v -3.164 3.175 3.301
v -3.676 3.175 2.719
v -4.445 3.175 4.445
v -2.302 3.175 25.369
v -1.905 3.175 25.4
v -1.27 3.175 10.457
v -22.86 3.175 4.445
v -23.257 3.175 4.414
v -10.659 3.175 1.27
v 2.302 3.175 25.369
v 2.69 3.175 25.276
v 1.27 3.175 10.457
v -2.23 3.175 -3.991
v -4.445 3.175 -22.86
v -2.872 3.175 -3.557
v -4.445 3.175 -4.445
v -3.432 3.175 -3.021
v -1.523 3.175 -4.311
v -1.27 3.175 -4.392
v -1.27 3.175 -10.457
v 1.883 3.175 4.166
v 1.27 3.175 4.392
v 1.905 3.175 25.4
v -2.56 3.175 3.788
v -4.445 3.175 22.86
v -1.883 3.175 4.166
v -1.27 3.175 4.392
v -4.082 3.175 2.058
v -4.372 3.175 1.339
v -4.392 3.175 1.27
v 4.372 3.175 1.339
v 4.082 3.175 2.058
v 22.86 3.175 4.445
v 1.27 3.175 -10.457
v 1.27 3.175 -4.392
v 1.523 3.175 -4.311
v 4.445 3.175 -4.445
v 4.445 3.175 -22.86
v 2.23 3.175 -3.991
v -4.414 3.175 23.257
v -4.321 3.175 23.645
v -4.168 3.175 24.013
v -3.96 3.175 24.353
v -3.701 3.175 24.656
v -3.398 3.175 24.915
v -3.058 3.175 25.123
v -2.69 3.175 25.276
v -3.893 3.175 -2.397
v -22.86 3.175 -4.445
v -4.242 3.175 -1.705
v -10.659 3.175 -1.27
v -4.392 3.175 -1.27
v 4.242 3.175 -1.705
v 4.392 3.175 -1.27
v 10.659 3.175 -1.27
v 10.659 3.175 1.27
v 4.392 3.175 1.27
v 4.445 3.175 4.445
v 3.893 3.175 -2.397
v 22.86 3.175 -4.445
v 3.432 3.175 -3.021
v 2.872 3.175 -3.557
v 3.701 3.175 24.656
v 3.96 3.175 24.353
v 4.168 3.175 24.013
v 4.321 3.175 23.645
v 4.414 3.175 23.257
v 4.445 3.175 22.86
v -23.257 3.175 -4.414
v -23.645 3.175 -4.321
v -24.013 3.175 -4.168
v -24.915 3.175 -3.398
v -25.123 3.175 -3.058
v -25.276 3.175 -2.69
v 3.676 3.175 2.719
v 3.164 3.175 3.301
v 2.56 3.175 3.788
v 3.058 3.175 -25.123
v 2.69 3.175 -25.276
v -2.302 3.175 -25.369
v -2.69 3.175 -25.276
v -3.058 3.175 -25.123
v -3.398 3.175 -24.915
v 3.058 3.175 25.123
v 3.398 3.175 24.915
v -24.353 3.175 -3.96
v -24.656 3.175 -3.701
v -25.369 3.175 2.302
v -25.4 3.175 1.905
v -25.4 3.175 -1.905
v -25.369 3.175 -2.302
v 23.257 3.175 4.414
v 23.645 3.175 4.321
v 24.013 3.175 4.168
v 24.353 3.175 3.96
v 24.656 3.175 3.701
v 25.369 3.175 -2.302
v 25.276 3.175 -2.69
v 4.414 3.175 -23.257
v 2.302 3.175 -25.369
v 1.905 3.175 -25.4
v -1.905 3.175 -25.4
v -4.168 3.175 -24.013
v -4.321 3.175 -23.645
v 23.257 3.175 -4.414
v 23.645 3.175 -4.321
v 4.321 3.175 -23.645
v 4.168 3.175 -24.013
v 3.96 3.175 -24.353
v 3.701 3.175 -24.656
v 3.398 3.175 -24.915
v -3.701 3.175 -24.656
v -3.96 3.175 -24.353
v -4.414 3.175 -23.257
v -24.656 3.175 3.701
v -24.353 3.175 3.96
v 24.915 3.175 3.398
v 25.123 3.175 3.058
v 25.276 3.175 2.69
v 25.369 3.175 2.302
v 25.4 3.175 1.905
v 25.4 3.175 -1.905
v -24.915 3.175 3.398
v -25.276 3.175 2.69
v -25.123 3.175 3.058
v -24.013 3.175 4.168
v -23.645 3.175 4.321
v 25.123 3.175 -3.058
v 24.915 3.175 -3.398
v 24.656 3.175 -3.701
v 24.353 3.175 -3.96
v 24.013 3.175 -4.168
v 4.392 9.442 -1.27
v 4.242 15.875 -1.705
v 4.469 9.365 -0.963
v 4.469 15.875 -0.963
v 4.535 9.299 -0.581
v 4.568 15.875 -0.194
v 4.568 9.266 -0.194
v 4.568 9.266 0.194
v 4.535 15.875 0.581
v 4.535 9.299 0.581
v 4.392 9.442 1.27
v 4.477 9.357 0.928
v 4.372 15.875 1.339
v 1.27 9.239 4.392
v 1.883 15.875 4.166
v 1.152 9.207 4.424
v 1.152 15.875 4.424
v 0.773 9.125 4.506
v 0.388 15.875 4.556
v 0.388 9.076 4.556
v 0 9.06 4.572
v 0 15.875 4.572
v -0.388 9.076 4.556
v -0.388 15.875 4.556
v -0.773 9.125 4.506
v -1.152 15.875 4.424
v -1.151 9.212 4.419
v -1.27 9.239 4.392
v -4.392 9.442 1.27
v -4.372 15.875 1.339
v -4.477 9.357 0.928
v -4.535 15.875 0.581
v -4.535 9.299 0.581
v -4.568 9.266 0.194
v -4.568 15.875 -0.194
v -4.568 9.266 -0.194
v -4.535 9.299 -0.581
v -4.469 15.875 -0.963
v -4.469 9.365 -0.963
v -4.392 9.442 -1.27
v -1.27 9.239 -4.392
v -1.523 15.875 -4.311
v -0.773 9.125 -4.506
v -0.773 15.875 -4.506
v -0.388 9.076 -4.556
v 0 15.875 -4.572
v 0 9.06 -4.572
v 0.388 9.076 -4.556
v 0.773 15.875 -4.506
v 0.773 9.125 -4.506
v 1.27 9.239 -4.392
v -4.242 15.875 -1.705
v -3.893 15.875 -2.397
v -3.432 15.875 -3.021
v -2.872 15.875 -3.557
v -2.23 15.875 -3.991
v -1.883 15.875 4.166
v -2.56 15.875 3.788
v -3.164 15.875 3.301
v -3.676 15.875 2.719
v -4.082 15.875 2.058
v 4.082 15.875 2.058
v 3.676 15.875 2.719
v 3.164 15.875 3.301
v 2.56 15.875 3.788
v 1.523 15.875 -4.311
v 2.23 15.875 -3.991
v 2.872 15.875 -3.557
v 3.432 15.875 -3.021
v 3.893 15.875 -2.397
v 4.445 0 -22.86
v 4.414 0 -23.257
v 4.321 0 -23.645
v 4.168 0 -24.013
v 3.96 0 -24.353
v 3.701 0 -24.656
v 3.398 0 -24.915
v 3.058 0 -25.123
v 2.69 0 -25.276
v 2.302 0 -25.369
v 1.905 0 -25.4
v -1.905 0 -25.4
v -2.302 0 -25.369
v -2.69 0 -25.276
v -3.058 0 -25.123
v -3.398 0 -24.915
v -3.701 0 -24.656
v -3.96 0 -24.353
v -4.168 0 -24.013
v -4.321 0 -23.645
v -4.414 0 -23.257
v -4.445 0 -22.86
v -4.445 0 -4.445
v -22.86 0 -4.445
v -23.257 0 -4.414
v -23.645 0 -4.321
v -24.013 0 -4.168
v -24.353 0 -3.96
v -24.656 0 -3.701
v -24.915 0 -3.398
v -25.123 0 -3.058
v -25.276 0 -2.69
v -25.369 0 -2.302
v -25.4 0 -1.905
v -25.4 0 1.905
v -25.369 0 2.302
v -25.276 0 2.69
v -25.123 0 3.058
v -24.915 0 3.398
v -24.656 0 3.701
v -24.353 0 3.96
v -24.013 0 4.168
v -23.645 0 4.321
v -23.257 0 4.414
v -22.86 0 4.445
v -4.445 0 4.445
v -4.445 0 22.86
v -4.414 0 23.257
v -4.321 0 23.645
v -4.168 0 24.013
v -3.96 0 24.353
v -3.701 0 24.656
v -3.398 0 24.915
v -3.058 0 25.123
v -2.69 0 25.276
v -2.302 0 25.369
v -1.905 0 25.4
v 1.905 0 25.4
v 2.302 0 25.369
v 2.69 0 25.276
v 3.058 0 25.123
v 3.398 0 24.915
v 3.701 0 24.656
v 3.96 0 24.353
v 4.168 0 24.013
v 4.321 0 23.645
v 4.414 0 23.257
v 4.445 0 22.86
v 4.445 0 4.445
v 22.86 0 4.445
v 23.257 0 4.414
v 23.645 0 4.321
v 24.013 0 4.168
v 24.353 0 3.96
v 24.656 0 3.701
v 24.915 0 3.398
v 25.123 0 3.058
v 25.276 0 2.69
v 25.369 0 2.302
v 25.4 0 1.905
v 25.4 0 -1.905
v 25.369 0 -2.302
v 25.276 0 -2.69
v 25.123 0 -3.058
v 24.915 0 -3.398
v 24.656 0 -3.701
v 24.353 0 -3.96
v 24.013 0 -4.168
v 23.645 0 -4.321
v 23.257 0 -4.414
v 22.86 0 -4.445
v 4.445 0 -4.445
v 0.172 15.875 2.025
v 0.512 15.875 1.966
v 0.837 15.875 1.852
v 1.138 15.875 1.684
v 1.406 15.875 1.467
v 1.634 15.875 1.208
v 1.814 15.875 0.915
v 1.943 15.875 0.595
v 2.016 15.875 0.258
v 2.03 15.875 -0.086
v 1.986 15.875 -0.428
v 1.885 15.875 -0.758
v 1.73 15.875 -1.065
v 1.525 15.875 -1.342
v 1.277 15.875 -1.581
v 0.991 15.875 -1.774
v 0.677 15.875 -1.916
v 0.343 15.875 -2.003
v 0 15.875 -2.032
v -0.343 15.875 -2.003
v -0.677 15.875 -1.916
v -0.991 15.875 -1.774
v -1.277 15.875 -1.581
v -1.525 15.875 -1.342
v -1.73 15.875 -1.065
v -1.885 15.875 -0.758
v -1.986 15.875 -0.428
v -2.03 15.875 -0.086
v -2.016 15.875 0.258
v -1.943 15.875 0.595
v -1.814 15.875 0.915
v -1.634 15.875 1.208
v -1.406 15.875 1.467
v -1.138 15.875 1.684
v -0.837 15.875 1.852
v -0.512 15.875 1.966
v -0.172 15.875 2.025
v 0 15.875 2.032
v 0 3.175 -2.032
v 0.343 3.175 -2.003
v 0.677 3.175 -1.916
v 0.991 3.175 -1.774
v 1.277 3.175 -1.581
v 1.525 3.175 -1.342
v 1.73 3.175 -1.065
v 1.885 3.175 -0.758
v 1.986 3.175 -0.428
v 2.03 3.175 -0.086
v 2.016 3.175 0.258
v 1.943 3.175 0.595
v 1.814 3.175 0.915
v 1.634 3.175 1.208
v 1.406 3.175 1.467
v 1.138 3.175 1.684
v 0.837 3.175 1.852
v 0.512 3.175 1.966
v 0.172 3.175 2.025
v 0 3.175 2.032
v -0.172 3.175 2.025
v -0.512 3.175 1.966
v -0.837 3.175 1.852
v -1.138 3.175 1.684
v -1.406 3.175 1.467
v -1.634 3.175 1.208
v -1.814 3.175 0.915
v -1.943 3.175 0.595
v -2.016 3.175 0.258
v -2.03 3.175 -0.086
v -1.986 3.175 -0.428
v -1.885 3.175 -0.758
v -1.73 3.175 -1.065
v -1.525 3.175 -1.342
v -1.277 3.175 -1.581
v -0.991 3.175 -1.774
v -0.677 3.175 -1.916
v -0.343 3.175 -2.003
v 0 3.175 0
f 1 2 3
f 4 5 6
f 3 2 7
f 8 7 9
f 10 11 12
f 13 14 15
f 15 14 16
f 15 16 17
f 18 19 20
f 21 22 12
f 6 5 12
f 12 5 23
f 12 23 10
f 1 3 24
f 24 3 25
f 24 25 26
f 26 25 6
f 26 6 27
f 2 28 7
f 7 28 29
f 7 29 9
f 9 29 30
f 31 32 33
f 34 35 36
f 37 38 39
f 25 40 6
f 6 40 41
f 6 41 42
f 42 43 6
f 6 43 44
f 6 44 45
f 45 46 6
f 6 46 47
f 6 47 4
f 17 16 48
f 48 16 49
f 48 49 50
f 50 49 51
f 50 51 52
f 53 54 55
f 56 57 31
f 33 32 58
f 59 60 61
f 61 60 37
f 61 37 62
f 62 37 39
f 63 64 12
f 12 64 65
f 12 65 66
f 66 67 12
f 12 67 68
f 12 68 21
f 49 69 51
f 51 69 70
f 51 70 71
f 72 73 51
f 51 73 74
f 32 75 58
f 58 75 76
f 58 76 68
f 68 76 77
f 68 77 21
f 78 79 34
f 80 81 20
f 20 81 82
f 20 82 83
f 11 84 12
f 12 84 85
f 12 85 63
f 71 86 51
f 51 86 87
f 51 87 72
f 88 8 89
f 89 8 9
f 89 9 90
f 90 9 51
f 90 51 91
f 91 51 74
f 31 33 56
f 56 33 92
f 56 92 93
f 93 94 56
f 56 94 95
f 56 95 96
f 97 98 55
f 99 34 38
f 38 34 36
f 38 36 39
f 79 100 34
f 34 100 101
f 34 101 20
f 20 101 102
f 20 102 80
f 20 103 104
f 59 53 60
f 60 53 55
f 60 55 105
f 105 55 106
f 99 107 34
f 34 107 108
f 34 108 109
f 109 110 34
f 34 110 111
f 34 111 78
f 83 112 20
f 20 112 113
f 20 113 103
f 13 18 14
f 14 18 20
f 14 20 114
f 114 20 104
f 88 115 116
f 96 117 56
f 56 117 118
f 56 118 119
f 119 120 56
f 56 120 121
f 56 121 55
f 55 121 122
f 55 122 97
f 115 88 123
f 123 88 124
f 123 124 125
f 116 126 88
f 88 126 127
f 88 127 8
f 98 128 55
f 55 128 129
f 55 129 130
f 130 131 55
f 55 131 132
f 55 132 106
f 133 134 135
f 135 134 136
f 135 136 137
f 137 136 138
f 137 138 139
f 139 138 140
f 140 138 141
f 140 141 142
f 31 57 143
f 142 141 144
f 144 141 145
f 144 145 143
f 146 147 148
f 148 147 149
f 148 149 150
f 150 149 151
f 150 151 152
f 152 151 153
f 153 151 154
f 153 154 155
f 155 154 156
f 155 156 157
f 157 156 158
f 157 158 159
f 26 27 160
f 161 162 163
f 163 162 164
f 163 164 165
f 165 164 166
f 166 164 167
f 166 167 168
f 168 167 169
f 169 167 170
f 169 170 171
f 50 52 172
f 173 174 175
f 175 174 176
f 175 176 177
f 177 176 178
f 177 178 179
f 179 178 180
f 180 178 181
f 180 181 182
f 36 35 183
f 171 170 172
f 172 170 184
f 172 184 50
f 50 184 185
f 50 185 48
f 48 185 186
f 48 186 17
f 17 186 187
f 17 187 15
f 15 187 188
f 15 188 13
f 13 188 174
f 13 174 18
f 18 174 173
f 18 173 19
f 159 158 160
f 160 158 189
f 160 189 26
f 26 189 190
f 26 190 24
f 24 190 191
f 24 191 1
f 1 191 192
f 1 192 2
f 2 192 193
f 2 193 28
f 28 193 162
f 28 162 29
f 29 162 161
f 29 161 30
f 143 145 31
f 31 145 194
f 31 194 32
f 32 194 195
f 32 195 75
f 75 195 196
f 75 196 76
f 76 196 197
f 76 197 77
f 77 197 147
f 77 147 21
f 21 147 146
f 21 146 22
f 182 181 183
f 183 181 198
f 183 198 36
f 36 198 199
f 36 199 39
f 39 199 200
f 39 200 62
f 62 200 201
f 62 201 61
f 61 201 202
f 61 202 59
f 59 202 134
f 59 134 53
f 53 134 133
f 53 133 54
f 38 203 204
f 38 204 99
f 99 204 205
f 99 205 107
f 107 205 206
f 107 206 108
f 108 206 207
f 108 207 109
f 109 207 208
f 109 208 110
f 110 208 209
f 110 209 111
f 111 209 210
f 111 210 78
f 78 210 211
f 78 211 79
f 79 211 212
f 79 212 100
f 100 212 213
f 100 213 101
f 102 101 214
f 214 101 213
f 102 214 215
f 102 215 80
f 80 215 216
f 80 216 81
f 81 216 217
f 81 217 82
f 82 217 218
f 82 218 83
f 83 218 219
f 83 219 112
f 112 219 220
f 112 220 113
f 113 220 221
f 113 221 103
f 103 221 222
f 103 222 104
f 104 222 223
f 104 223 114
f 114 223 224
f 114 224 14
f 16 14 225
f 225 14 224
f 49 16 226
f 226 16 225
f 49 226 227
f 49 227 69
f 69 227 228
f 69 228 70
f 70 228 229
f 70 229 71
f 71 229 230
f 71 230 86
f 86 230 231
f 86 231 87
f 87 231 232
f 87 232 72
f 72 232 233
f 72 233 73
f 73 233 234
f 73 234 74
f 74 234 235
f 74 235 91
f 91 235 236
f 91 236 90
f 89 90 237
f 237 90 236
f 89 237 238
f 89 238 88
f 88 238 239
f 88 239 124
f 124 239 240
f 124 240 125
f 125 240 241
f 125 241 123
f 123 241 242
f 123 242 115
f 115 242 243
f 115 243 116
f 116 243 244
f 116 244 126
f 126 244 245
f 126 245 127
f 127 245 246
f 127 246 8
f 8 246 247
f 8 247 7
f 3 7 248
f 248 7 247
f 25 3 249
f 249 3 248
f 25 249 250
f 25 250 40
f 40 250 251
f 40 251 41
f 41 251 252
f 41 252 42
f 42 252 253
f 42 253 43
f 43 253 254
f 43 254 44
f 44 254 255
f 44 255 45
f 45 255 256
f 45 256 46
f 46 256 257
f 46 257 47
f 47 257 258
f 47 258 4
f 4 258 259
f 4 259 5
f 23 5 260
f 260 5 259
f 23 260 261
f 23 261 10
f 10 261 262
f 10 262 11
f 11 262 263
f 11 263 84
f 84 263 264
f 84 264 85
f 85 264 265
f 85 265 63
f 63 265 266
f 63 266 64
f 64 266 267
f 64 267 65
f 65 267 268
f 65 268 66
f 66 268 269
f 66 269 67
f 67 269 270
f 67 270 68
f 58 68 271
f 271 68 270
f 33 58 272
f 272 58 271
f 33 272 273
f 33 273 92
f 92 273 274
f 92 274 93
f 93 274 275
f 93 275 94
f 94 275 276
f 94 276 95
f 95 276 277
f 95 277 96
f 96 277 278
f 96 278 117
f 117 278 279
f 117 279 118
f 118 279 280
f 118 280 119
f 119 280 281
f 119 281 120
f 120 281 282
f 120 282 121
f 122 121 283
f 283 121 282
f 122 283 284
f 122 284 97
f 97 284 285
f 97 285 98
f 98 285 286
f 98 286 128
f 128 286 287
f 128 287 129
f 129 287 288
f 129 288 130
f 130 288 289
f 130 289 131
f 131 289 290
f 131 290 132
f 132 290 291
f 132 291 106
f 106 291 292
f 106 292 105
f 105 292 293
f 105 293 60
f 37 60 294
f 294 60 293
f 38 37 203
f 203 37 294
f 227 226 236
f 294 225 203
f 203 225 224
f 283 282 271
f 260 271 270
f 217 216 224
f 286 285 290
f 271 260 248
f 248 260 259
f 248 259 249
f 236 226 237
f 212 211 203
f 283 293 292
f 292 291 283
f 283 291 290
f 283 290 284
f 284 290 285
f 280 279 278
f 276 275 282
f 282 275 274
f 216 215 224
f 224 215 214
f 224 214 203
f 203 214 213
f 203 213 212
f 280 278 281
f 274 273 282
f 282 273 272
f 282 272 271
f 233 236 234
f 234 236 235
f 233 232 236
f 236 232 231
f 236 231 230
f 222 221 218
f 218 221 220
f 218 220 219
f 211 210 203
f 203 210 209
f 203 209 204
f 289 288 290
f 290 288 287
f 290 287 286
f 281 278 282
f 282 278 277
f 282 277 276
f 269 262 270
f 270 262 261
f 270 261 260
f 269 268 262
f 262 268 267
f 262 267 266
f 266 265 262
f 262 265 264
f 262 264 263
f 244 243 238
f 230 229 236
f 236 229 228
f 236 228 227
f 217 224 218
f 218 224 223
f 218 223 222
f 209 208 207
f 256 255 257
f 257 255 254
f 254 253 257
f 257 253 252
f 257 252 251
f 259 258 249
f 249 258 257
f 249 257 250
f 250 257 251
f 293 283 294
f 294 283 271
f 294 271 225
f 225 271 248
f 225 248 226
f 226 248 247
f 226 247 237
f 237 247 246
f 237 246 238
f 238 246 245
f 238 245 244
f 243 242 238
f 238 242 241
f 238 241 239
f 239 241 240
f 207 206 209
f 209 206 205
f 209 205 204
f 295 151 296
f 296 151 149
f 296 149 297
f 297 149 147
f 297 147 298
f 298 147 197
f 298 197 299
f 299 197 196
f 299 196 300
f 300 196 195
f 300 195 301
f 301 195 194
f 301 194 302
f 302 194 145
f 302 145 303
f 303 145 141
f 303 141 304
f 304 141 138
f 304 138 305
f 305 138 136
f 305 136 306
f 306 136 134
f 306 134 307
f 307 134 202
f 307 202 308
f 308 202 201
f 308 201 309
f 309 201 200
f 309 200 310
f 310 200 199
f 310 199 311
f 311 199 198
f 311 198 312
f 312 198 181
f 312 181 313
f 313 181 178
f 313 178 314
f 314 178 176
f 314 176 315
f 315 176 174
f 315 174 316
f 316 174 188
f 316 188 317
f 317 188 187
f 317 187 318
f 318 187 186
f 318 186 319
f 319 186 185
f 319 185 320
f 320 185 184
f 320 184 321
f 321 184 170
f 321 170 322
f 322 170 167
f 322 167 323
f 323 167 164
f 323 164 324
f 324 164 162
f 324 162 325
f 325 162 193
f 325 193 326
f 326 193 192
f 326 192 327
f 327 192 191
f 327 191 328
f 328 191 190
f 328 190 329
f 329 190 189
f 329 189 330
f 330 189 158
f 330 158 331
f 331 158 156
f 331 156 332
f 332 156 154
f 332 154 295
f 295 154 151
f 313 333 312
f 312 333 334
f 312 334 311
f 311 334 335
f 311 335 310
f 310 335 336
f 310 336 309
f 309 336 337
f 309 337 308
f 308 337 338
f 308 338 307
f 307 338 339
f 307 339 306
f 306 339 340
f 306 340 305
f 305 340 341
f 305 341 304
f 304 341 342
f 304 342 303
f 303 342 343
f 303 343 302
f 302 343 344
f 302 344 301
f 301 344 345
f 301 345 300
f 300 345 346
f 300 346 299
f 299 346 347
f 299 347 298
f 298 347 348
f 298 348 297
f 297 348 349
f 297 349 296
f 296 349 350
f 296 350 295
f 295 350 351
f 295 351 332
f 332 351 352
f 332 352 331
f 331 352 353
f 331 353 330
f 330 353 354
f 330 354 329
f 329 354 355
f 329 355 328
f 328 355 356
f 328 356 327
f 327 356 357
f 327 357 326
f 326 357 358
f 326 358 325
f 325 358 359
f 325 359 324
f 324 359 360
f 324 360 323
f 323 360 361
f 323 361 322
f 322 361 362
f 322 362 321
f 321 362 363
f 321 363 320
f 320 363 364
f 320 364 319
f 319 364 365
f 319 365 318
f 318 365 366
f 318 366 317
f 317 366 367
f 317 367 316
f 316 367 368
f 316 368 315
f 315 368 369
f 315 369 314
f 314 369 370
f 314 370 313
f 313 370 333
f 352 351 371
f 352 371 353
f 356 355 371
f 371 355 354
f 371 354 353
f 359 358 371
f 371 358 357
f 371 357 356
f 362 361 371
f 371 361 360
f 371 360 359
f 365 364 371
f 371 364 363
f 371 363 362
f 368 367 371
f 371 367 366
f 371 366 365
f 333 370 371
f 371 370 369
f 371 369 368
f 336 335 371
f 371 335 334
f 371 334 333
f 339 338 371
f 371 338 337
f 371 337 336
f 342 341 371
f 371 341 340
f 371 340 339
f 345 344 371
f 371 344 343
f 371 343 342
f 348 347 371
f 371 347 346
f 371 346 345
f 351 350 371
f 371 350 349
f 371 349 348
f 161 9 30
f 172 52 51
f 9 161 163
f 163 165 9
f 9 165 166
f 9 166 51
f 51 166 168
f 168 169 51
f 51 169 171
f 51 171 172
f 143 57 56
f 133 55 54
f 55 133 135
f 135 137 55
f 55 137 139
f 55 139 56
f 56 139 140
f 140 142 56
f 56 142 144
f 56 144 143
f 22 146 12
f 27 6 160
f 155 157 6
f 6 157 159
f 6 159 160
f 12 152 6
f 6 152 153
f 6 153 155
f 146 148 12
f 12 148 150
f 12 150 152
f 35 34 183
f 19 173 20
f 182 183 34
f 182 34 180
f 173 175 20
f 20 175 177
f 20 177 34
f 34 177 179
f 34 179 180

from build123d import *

# Parameters (mm, degrees)
BOSS_EXTRUDE1_DEPTH = 3.175
SKETCH2_R           = 4.572
SKETCH2_R_2         = 2.032
BOSS_EXTRUDE2_DEPTH = 12.7
BOSS_EXTRUDE3_DEPTH = 1.27
BOSS_EXTRUDE4_DEPTH = 1.27


with BuildPart() as part:
    # Sketch1 → Boss-Extrude1 (new body)
    with BuildSketch(Plane(origin=(0, 0, 0), x_dir=(1, 0, 0), z_dir=(0, 1, 0))):
        with BuildLine():
            Line((-25.4, 1.905), (-25.4, -1.905))
            ThreePointArc((-25.4, -1.905), (-24.656051224, -3.701051224), (-22.86, -4.445))
            Line((-22.86, -4.445), (-4.445, -4.445))
            Line((-4.445, -4.445), (-4.445, -22.86))
            ThreePointArc((-4.445, -22.86), (-3.701051224, -24.656051224), (-1.905, -25.4))
            Line((-1.905, -25.4), (1.905, -25.4))
            ThreePointArc((1.905, -25.4), (3.701051224, -24.656051224), (4.445, -22.86))
            Line((4.445, -22.86), (4.445, -4.445))
            Line((4.445, -4.445), (22.86, -4.445))
            ThreePointArc((22.86, -4.445), (24.656051224, -3.701051224), (25.4, -1.905))
            Line((25.4, -1.905), (25.4, 1.905))
            ThreePointArc((25.4, 1.905), (24.656051224, 3.701051224), (22.86, 4.445))
            Line((22.86, 4.445), (4.445, 4.445))
            Line((4.445, 4.445), (4.445, 22.86))
            ThreePointArc((4.445, 22.86), (3.701051224, 24.656051224), (1.905, 25.4))
            Line((1.905, 25.4), (-1.905, 25.4))
            ThreePointArc((-1.905, 25.4), (-3.701051224, 24.656051224), (-4.445, 22.86))
            Line((-4.445, 22.86), (-4.445, 4.445))
            Line((-4.445, 4.445), (-22.86, 4.445))
            ThreePointArc((-22.86, 4.445), (-24.656051224, 3.701051224), (-25.4, 1.905))
        make_face()
    extrude(amount=BOSS_EXTRUDE1_DEPTH)

    # Sketch2 → Boss-Extrude2 (add)
    with BuildSketch(Plane(origin=(0, 3.175, 0), x_dir=(1, 0, 0), z_dir=(0, 1, 0))):
        with Locations(Location((0, 0, 0), (0, 0, 90))):
            Circle(SKETCH2_R)
        with Locations(Location((0, 0, 0), (0, 0, 270))):
            Circle(SKETCH2_R_2, mode=Mode.SUBTRACT)
    extrude(amount=BOSS_EXTRUDE2_DEPTH)

    # Sketch9 → Boss-Extrude3 (add, symmetric)
    with BuildSketch(Plane.XY):
        Polygon((-10.659295588, 3.175), (-4.309295588, 3.175), (-4.309295588, 9.525), align=None)
        Polygon((10.659295588, 3.175), (4.309295588, 3.175), (4.309295588, 9.525), align=None)
    extrude(amount=BOSS_EXTRUDE3_DEPTH, both=True)

    # Sketch10 → Boss-Extrude4 (add, symmetric)
    with BuildSketch(Plane(origin=(0, 0, 0), x_dir=(0, 0, -1), z_dir=(1, 0, 0))):
        Polygon((-10.456553942, 3.175), (-4.106553942, 3.175), (-4.106553942, 9.525), align=None)
        Polygon((4.106553942, 9.525), (10.456553942, 3.175), (4.106553942, 3.175), align=None)
    extrude(amount=BOSS_EXTRUDE4_DEPTH, both=True)


solid = part.part
